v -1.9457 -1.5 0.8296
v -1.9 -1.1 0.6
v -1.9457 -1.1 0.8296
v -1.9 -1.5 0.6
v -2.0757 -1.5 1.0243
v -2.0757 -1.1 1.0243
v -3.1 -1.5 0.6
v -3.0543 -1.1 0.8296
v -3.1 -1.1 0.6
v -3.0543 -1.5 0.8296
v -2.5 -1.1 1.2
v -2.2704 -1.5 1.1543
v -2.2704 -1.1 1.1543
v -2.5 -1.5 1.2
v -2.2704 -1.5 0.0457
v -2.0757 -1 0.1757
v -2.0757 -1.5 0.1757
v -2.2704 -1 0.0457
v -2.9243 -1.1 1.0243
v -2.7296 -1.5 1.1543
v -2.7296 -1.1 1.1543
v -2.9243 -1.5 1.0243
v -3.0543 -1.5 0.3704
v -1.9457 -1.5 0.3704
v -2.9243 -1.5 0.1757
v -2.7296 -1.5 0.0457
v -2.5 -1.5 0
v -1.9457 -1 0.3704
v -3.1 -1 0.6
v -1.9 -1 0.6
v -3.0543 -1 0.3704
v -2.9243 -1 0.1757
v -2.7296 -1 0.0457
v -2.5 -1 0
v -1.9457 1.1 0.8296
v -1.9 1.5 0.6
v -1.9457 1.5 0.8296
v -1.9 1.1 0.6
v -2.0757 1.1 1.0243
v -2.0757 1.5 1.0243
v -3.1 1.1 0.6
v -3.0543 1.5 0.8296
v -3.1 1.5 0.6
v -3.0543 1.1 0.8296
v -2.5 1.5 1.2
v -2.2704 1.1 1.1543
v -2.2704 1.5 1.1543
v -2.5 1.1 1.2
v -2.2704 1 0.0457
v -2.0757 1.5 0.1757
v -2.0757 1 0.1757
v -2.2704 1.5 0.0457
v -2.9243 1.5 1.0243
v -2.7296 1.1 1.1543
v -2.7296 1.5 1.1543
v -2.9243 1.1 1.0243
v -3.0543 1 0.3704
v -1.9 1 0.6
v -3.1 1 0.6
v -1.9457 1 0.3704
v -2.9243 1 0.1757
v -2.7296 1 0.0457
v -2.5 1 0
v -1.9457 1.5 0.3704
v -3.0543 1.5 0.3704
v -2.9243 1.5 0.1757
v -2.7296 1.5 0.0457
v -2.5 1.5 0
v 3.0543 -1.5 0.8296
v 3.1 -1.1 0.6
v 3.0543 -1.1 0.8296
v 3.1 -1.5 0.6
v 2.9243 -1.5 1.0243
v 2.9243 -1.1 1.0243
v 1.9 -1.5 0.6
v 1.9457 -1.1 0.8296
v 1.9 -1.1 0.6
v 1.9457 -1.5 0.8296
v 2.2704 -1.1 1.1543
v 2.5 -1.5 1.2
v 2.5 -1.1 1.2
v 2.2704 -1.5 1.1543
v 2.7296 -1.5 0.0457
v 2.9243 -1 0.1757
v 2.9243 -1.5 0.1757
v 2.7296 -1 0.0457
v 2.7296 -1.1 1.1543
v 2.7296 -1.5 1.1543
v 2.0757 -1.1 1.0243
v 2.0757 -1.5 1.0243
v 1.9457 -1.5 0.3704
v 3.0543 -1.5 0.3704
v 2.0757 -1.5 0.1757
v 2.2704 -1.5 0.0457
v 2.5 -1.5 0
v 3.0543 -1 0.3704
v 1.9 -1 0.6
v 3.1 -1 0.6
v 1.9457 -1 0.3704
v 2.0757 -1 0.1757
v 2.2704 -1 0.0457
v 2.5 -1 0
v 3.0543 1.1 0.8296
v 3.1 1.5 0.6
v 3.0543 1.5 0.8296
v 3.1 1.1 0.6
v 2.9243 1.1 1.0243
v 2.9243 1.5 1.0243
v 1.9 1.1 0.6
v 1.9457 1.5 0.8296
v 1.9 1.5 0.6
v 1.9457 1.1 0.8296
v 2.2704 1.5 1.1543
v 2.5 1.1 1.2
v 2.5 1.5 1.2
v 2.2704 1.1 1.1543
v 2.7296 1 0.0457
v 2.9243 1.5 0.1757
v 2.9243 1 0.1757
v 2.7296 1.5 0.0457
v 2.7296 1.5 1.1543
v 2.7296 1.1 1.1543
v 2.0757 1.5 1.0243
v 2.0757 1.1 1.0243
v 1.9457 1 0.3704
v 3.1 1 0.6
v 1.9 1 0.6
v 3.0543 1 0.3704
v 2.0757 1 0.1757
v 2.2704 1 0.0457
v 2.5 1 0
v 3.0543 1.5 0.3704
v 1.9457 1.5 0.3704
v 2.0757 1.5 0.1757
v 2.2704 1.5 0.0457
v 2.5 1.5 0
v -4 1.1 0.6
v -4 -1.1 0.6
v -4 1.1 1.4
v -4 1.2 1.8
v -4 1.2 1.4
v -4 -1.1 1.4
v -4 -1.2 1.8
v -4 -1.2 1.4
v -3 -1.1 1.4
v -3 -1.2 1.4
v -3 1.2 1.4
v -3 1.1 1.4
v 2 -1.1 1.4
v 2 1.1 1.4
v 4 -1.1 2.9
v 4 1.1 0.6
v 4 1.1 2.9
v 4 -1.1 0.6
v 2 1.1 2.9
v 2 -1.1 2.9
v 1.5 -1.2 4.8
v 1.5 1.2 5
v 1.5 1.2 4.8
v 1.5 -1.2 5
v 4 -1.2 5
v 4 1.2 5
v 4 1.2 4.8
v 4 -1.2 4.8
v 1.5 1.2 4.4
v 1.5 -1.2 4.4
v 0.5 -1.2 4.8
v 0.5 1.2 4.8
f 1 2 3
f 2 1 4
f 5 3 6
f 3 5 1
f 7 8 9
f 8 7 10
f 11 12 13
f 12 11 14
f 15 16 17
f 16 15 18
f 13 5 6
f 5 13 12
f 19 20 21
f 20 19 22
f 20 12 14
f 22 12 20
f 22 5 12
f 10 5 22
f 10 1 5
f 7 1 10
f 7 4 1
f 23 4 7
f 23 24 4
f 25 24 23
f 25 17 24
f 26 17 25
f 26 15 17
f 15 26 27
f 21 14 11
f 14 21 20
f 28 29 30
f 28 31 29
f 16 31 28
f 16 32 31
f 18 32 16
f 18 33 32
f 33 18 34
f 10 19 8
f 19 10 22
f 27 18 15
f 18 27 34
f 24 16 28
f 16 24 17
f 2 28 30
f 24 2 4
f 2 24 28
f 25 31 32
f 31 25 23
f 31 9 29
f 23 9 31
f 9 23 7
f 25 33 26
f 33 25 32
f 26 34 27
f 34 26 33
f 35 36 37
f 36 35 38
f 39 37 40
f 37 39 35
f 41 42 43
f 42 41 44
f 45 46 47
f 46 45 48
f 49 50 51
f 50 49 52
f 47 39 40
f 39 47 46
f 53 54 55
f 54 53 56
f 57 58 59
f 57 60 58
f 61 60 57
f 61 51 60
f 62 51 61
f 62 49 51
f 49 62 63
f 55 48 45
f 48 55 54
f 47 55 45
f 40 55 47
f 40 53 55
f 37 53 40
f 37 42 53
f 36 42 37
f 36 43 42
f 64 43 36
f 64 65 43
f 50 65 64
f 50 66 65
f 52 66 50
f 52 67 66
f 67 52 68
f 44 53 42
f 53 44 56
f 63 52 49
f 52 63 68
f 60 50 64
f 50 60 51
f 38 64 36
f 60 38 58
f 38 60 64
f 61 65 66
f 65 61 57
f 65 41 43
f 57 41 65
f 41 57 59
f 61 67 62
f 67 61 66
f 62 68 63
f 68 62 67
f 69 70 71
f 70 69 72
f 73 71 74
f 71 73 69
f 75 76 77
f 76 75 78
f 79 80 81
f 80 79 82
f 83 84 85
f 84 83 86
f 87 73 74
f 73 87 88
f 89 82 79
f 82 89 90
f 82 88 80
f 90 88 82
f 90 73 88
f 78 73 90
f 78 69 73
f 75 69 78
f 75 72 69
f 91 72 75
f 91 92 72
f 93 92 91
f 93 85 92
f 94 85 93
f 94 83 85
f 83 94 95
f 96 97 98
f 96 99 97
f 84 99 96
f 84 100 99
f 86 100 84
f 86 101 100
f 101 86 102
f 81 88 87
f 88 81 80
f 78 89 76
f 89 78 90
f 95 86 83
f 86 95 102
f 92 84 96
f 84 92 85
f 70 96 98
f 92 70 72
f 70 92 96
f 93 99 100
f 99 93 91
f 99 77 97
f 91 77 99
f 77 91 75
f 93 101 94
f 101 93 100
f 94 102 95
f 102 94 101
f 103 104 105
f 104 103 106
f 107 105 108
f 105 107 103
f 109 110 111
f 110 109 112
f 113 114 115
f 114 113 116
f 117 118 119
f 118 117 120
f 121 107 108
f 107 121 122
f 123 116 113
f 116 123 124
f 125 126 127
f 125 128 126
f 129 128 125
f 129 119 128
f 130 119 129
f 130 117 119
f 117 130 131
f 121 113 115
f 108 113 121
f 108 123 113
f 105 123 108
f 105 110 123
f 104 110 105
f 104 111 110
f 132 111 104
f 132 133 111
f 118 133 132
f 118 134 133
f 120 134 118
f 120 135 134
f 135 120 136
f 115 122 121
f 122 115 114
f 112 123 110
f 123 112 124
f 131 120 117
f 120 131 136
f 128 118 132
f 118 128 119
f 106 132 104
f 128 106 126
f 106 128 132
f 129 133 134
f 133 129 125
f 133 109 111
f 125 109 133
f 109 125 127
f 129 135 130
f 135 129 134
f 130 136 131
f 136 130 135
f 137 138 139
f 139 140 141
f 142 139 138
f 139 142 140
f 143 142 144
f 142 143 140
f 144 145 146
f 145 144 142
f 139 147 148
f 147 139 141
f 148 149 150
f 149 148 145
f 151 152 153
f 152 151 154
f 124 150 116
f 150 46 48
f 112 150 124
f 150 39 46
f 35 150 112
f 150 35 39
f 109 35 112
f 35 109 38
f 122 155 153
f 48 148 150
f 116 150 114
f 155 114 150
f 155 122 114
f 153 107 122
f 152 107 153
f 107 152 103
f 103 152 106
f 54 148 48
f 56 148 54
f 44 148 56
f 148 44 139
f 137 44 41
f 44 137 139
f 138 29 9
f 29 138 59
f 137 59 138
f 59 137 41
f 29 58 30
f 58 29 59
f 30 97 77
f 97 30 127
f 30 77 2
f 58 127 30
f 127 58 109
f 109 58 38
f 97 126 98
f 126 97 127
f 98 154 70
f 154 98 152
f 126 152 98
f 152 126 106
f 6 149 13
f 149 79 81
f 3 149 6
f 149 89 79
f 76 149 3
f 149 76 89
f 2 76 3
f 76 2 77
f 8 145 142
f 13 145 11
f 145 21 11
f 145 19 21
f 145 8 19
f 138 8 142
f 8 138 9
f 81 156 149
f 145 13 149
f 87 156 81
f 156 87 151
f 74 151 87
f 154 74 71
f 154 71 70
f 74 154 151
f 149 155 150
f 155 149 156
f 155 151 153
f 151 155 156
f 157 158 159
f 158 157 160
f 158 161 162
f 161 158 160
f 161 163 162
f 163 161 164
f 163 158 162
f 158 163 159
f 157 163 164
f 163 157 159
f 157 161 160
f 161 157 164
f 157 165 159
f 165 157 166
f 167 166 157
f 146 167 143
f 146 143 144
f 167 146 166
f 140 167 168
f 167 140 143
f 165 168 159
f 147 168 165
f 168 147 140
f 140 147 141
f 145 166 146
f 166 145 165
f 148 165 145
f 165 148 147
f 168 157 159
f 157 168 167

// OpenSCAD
// Airport Passenger Boarding Stair Truck

$fn = 16;

module stair_truck() {
    translate([0, 0, 1.0])
        cube([8.0, 2.2, 0.8], center=true);

    //CAB

    translate([3.0, 0, 2.15])
        cube([2.0, 2.2, 1.5], center=true);

    //WHEELS
    wheel_r = 0.6;
    wheel_w = 0.5;
    
    for (x = [-2.5, 2.5]) {
        for (y = [-1.25, 1.25]) {
            translate([x, y, wheel_r])
                rotate([90, 0, 0])
                    cylinder(h=wheel_w, r=wheel_r, center=true);
        }
    }

    //PLATFORM
    translate([2.75, 0, 4.9])
        cube([2.5, 2.4, 0.2], center=true);

    //STAIR
    hull() {
        translate([-3.5, 0, 1.6])
            cube([1.0, 2.4, 0.4], center=true);

        translate([1.0, 0, 4.6])
            cube([1.0, 2.4, 0.4], center=true);
    }
}

stair_truck();
